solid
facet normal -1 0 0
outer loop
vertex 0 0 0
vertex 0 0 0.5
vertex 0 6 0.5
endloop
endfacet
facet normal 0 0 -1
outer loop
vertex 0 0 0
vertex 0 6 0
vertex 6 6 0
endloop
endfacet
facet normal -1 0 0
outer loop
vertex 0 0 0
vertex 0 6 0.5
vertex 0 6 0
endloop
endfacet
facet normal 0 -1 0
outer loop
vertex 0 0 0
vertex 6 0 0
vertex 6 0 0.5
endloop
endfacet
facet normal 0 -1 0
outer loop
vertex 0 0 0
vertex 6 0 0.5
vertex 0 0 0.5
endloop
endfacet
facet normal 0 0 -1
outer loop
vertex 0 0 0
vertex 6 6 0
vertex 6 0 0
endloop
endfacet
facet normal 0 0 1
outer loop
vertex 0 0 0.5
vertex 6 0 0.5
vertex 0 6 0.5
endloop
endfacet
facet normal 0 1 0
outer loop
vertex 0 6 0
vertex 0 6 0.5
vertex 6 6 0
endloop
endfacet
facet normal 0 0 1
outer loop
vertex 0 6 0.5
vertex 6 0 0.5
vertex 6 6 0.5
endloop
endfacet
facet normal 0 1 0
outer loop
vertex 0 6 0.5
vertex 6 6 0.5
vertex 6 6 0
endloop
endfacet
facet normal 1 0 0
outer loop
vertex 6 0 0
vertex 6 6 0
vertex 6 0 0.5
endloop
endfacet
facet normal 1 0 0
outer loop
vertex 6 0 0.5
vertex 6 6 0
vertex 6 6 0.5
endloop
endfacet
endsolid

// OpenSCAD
/* Warning, this is a very basic generator with a lot of approximation 
input data : [UQFN, R7X, 6x6x0.5mm, 48, , A, C04-00153A]
generated by com.zoubworld.electronics.cad.model3d.Basic
Date : Sun Feb 15 10:50:48 CET 2026
*/

//body
color("black")
translate([0,0,0])
cube([6.0,6.0,0.5], center=false);
